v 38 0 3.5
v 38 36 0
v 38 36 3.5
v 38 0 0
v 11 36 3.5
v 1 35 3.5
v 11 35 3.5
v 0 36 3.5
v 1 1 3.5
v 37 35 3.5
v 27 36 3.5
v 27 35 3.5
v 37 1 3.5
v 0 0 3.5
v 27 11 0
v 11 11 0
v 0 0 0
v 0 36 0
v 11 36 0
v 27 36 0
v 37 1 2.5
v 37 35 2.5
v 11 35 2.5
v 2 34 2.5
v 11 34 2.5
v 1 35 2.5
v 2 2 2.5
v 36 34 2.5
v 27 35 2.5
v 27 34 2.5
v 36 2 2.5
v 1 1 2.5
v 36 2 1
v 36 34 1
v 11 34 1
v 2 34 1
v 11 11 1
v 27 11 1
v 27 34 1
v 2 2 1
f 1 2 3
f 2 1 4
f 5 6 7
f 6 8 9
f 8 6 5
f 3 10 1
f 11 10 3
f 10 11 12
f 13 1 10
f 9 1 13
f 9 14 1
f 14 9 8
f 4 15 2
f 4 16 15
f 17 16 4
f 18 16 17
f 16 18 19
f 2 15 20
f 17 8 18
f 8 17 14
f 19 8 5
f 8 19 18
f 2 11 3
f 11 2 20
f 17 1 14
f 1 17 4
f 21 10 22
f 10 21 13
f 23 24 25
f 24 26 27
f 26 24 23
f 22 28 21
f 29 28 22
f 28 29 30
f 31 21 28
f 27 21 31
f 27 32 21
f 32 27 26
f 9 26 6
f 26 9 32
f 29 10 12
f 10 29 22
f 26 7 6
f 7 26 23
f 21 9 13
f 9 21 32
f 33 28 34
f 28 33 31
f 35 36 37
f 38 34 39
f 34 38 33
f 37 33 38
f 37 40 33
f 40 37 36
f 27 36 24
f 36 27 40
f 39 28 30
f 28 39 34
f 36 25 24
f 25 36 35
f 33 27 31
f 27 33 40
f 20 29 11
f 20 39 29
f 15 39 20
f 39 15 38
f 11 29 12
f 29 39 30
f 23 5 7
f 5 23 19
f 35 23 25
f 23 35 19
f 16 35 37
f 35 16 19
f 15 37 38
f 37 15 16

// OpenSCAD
difference(){
    cube([36+2,34+2,2.5+1], center=false);
    translate([1,1,2.5]) cube([36,34,2.5], center=false);
    translate([2,2,1]) cube([36-2,34-2,5]);
    translate([11,11,-1]) cube([16,30,5]);
}
